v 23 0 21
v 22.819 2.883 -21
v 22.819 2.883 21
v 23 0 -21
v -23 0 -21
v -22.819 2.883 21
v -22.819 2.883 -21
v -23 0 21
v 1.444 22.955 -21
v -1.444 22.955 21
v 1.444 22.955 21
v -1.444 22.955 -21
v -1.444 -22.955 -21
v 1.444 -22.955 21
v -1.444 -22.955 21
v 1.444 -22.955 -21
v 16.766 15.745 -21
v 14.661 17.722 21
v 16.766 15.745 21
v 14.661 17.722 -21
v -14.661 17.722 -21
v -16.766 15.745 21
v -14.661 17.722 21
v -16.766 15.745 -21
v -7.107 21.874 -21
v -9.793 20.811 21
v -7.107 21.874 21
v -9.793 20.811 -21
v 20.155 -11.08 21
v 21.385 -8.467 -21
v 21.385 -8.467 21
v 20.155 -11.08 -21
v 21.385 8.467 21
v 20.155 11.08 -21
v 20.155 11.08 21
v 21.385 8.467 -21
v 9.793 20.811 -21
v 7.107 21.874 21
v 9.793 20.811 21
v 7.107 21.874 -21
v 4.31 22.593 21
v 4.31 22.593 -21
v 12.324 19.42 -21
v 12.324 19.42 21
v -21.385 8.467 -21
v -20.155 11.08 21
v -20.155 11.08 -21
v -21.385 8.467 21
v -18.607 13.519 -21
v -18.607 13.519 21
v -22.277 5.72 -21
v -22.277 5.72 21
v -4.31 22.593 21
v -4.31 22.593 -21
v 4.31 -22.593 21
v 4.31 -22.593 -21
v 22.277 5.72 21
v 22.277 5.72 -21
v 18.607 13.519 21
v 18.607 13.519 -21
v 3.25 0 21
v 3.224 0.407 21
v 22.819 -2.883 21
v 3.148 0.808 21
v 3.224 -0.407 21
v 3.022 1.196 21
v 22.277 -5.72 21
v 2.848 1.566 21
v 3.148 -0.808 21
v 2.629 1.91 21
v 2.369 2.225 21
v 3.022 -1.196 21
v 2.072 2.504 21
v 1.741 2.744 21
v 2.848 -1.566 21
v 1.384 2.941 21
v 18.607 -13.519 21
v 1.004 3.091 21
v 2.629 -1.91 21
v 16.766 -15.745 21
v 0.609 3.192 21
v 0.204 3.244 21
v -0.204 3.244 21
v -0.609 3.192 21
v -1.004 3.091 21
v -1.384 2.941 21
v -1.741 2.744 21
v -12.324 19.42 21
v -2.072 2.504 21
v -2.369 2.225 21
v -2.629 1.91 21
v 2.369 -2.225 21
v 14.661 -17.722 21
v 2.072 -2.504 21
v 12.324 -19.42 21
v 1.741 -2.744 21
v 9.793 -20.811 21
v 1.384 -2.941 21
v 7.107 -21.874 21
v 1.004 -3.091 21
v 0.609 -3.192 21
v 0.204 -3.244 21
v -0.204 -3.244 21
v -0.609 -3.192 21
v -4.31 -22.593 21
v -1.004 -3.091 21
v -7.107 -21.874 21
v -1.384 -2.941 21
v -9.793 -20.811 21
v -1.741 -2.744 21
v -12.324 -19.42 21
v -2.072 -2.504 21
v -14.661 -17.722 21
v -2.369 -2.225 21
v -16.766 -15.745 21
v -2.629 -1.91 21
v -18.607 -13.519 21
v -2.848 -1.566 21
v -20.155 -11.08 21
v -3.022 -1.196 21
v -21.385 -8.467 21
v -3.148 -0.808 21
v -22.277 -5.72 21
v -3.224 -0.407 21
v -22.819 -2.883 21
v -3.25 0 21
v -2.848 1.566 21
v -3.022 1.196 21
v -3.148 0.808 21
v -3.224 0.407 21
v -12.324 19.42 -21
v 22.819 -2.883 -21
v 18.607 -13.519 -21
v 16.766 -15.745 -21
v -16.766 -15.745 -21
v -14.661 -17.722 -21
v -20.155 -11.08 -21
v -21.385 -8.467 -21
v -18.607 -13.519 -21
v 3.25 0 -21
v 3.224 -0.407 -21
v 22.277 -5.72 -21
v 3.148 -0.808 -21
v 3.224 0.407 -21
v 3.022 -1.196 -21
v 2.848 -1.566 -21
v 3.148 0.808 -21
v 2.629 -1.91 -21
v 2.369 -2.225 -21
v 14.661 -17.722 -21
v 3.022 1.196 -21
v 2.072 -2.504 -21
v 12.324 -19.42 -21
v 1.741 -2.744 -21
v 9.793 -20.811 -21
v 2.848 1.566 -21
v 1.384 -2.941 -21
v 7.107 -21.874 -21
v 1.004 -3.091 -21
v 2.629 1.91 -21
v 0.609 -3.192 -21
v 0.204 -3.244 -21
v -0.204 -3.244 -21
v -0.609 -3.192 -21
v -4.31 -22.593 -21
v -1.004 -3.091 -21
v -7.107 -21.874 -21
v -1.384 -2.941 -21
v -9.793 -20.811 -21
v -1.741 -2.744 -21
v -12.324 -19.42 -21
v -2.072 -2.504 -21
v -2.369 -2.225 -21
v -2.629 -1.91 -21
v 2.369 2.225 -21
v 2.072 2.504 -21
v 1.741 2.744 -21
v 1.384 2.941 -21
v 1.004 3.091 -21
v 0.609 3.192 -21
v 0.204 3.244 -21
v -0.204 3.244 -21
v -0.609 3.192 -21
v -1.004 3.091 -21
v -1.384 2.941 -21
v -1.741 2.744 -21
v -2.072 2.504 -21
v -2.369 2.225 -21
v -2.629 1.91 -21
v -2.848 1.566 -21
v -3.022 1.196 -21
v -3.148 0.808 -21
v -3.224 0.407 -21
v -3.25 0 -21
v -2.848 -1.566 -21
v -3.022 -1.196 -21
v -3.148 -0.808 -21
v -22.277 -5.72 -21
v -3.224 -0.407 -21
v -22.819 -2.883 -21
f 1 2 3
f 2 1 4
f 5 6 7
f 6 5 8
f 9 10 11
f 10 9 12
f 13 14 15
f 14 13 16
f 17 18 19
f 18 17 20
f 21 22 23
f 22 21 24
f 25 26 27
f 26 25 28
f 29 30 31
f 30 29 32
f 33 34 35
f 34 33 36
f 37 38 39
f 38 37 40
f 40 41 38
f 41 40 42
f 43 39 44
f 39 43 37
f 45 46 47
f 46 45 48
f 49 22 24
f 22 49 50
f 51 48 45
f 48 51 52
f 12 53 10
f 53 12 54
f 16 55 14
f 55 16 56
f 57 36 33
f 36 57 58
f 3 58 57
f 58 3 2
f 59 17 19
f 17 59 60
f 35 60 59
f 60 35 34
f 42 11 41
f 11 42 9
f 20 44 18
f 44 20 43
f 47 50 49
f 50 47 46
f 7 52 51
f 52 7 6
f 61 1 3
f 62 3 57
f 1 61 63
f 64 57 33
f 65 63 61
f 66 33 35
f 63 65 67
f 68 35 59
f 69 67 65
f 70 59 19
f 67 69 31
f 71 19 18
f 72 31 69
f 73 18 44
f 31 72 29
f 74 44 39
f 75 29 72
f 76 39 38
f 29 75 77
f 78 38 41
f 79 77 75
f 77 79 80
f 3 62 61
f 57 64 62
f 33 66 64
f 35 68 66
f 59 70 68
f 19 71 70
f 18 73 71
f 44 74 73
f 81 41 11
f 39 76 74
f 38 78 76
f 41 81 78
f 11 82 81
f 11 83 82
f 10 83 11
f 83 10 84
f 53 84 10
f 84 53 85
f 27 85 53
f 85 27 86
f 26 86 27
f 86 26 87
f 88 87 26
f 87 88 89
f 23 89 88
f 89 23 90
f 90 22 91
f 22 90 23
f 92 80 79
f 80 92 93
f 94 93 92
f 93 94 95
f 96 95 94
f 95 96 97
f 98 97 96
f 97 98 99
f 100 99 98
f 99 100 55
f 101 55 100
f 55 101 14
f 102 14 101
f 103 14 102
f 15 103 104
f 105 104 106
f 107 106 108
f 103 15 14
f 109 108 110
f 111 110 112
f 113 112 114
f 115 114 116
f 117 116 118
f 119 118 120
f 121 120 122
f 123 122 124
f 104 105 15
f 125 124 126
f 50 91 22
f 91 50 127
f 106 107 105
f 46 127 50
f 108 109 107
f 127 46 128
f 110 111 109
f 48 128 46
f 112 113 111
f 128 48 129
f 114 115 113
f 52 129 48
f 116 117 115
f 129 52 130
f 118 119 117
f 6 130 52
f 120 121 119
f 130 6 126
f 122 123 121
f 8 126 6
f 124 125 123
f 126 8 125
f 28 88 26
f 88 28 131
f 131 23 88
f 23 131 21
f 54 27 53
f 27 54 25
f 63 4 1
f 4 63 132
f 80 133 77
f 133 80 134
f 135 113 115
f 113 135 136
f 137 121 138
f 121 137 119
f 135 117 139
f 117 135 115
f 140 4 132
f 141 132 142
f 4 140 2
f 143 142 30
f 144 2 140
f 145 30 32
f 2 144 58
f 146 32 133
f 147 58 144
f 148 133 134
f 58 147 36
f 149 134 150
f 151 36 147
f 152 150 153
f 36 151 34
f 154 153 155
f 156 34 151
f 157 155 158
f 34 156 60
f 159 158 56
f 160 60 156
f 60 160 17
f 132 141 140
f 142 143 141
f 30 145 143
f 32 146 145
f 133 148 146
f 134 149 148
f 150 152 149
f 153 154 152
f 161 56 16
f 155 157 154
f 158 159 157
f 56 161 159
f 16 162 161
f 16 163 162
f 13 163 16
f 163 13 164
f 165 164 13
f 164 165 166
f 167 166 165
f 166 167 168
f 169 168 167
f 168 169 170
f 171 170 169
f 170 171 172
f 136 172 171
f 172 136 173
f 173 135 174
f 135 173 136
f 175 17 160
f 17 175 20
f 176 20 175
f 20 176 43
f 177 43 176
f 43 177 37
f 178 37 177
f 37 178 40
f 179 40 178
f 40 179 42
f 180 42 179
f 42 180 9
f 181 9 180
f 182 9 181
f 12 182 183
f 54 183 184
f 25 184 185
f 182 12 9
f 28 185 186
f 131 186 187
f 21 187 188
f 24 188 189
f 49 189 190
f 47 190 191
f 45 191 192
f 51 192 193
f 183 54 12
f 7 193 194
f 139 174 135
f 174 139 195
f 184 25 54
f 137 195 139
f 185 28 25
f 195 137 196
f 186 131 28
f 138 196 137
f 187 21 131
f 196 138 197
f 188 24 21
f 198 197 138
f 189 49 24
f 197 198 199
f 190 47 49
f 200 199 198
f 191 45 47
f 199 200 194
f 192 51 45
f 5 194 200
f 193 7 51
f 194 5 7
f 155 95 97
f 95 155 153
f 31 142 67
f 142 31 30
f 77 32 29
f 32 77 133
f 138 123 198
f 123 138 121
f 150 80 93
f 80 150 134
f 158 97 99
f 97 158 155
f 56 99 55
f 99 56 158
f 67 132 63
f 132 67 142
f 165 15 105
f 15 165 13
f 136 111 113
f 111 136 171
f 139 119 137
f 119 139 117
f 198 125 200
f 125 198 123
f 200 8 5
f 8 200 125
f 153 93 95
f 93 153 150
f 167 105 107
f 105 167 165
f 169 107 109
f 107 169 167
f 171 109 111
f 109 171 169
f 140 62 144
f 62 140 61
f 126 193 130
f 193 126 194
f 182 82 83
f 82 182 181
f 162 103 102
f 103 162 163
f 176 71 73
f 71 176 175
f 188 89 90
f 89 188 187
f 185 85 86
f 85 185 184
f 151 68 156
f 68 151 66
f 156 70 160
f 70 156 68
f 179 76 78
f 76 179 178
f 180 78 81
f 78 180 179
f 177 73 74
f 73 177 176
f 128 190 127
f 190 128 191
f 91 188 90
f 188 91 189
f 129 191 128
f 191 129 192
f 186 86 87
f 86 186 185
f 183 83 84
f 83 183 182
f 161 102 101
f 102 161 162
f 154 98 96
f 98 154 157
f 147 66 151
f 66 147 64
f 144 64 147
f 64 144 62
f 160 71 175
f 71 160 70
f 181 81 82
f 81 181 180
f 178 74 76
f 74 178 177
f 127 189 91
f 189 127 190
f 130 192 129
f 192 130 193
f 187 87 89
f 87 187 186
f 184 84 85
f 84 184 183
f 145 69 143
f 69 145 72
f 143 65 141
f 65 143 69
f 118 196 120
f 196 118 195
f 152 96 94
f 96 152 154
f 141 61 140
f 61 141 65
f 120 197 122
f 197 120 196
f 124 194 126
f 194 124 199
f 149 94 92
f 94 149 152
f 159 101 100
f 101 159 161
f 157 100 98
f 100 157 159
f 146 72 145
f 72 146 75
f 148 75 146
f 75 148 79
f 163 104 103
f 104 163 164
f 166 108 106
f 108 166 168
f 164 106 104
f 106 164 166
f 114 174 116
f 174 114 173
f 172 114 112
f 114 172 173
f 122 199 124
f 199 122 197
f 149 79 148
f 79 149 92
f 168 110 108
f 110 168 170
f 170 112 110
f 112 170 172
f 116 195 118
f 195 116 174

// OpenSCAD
$fn = 50;


difference() {
	union() {
		translate(v = [0, 0, -21.0000000000]) {
			cylinder(h = 42, r = 23.0000000000);
		}
	}
	union() {
		translate(v = [0, 0, -100.0000000000]) {
			cylinder(h = 200, r = 3.2500000000);
		}
	}
}
